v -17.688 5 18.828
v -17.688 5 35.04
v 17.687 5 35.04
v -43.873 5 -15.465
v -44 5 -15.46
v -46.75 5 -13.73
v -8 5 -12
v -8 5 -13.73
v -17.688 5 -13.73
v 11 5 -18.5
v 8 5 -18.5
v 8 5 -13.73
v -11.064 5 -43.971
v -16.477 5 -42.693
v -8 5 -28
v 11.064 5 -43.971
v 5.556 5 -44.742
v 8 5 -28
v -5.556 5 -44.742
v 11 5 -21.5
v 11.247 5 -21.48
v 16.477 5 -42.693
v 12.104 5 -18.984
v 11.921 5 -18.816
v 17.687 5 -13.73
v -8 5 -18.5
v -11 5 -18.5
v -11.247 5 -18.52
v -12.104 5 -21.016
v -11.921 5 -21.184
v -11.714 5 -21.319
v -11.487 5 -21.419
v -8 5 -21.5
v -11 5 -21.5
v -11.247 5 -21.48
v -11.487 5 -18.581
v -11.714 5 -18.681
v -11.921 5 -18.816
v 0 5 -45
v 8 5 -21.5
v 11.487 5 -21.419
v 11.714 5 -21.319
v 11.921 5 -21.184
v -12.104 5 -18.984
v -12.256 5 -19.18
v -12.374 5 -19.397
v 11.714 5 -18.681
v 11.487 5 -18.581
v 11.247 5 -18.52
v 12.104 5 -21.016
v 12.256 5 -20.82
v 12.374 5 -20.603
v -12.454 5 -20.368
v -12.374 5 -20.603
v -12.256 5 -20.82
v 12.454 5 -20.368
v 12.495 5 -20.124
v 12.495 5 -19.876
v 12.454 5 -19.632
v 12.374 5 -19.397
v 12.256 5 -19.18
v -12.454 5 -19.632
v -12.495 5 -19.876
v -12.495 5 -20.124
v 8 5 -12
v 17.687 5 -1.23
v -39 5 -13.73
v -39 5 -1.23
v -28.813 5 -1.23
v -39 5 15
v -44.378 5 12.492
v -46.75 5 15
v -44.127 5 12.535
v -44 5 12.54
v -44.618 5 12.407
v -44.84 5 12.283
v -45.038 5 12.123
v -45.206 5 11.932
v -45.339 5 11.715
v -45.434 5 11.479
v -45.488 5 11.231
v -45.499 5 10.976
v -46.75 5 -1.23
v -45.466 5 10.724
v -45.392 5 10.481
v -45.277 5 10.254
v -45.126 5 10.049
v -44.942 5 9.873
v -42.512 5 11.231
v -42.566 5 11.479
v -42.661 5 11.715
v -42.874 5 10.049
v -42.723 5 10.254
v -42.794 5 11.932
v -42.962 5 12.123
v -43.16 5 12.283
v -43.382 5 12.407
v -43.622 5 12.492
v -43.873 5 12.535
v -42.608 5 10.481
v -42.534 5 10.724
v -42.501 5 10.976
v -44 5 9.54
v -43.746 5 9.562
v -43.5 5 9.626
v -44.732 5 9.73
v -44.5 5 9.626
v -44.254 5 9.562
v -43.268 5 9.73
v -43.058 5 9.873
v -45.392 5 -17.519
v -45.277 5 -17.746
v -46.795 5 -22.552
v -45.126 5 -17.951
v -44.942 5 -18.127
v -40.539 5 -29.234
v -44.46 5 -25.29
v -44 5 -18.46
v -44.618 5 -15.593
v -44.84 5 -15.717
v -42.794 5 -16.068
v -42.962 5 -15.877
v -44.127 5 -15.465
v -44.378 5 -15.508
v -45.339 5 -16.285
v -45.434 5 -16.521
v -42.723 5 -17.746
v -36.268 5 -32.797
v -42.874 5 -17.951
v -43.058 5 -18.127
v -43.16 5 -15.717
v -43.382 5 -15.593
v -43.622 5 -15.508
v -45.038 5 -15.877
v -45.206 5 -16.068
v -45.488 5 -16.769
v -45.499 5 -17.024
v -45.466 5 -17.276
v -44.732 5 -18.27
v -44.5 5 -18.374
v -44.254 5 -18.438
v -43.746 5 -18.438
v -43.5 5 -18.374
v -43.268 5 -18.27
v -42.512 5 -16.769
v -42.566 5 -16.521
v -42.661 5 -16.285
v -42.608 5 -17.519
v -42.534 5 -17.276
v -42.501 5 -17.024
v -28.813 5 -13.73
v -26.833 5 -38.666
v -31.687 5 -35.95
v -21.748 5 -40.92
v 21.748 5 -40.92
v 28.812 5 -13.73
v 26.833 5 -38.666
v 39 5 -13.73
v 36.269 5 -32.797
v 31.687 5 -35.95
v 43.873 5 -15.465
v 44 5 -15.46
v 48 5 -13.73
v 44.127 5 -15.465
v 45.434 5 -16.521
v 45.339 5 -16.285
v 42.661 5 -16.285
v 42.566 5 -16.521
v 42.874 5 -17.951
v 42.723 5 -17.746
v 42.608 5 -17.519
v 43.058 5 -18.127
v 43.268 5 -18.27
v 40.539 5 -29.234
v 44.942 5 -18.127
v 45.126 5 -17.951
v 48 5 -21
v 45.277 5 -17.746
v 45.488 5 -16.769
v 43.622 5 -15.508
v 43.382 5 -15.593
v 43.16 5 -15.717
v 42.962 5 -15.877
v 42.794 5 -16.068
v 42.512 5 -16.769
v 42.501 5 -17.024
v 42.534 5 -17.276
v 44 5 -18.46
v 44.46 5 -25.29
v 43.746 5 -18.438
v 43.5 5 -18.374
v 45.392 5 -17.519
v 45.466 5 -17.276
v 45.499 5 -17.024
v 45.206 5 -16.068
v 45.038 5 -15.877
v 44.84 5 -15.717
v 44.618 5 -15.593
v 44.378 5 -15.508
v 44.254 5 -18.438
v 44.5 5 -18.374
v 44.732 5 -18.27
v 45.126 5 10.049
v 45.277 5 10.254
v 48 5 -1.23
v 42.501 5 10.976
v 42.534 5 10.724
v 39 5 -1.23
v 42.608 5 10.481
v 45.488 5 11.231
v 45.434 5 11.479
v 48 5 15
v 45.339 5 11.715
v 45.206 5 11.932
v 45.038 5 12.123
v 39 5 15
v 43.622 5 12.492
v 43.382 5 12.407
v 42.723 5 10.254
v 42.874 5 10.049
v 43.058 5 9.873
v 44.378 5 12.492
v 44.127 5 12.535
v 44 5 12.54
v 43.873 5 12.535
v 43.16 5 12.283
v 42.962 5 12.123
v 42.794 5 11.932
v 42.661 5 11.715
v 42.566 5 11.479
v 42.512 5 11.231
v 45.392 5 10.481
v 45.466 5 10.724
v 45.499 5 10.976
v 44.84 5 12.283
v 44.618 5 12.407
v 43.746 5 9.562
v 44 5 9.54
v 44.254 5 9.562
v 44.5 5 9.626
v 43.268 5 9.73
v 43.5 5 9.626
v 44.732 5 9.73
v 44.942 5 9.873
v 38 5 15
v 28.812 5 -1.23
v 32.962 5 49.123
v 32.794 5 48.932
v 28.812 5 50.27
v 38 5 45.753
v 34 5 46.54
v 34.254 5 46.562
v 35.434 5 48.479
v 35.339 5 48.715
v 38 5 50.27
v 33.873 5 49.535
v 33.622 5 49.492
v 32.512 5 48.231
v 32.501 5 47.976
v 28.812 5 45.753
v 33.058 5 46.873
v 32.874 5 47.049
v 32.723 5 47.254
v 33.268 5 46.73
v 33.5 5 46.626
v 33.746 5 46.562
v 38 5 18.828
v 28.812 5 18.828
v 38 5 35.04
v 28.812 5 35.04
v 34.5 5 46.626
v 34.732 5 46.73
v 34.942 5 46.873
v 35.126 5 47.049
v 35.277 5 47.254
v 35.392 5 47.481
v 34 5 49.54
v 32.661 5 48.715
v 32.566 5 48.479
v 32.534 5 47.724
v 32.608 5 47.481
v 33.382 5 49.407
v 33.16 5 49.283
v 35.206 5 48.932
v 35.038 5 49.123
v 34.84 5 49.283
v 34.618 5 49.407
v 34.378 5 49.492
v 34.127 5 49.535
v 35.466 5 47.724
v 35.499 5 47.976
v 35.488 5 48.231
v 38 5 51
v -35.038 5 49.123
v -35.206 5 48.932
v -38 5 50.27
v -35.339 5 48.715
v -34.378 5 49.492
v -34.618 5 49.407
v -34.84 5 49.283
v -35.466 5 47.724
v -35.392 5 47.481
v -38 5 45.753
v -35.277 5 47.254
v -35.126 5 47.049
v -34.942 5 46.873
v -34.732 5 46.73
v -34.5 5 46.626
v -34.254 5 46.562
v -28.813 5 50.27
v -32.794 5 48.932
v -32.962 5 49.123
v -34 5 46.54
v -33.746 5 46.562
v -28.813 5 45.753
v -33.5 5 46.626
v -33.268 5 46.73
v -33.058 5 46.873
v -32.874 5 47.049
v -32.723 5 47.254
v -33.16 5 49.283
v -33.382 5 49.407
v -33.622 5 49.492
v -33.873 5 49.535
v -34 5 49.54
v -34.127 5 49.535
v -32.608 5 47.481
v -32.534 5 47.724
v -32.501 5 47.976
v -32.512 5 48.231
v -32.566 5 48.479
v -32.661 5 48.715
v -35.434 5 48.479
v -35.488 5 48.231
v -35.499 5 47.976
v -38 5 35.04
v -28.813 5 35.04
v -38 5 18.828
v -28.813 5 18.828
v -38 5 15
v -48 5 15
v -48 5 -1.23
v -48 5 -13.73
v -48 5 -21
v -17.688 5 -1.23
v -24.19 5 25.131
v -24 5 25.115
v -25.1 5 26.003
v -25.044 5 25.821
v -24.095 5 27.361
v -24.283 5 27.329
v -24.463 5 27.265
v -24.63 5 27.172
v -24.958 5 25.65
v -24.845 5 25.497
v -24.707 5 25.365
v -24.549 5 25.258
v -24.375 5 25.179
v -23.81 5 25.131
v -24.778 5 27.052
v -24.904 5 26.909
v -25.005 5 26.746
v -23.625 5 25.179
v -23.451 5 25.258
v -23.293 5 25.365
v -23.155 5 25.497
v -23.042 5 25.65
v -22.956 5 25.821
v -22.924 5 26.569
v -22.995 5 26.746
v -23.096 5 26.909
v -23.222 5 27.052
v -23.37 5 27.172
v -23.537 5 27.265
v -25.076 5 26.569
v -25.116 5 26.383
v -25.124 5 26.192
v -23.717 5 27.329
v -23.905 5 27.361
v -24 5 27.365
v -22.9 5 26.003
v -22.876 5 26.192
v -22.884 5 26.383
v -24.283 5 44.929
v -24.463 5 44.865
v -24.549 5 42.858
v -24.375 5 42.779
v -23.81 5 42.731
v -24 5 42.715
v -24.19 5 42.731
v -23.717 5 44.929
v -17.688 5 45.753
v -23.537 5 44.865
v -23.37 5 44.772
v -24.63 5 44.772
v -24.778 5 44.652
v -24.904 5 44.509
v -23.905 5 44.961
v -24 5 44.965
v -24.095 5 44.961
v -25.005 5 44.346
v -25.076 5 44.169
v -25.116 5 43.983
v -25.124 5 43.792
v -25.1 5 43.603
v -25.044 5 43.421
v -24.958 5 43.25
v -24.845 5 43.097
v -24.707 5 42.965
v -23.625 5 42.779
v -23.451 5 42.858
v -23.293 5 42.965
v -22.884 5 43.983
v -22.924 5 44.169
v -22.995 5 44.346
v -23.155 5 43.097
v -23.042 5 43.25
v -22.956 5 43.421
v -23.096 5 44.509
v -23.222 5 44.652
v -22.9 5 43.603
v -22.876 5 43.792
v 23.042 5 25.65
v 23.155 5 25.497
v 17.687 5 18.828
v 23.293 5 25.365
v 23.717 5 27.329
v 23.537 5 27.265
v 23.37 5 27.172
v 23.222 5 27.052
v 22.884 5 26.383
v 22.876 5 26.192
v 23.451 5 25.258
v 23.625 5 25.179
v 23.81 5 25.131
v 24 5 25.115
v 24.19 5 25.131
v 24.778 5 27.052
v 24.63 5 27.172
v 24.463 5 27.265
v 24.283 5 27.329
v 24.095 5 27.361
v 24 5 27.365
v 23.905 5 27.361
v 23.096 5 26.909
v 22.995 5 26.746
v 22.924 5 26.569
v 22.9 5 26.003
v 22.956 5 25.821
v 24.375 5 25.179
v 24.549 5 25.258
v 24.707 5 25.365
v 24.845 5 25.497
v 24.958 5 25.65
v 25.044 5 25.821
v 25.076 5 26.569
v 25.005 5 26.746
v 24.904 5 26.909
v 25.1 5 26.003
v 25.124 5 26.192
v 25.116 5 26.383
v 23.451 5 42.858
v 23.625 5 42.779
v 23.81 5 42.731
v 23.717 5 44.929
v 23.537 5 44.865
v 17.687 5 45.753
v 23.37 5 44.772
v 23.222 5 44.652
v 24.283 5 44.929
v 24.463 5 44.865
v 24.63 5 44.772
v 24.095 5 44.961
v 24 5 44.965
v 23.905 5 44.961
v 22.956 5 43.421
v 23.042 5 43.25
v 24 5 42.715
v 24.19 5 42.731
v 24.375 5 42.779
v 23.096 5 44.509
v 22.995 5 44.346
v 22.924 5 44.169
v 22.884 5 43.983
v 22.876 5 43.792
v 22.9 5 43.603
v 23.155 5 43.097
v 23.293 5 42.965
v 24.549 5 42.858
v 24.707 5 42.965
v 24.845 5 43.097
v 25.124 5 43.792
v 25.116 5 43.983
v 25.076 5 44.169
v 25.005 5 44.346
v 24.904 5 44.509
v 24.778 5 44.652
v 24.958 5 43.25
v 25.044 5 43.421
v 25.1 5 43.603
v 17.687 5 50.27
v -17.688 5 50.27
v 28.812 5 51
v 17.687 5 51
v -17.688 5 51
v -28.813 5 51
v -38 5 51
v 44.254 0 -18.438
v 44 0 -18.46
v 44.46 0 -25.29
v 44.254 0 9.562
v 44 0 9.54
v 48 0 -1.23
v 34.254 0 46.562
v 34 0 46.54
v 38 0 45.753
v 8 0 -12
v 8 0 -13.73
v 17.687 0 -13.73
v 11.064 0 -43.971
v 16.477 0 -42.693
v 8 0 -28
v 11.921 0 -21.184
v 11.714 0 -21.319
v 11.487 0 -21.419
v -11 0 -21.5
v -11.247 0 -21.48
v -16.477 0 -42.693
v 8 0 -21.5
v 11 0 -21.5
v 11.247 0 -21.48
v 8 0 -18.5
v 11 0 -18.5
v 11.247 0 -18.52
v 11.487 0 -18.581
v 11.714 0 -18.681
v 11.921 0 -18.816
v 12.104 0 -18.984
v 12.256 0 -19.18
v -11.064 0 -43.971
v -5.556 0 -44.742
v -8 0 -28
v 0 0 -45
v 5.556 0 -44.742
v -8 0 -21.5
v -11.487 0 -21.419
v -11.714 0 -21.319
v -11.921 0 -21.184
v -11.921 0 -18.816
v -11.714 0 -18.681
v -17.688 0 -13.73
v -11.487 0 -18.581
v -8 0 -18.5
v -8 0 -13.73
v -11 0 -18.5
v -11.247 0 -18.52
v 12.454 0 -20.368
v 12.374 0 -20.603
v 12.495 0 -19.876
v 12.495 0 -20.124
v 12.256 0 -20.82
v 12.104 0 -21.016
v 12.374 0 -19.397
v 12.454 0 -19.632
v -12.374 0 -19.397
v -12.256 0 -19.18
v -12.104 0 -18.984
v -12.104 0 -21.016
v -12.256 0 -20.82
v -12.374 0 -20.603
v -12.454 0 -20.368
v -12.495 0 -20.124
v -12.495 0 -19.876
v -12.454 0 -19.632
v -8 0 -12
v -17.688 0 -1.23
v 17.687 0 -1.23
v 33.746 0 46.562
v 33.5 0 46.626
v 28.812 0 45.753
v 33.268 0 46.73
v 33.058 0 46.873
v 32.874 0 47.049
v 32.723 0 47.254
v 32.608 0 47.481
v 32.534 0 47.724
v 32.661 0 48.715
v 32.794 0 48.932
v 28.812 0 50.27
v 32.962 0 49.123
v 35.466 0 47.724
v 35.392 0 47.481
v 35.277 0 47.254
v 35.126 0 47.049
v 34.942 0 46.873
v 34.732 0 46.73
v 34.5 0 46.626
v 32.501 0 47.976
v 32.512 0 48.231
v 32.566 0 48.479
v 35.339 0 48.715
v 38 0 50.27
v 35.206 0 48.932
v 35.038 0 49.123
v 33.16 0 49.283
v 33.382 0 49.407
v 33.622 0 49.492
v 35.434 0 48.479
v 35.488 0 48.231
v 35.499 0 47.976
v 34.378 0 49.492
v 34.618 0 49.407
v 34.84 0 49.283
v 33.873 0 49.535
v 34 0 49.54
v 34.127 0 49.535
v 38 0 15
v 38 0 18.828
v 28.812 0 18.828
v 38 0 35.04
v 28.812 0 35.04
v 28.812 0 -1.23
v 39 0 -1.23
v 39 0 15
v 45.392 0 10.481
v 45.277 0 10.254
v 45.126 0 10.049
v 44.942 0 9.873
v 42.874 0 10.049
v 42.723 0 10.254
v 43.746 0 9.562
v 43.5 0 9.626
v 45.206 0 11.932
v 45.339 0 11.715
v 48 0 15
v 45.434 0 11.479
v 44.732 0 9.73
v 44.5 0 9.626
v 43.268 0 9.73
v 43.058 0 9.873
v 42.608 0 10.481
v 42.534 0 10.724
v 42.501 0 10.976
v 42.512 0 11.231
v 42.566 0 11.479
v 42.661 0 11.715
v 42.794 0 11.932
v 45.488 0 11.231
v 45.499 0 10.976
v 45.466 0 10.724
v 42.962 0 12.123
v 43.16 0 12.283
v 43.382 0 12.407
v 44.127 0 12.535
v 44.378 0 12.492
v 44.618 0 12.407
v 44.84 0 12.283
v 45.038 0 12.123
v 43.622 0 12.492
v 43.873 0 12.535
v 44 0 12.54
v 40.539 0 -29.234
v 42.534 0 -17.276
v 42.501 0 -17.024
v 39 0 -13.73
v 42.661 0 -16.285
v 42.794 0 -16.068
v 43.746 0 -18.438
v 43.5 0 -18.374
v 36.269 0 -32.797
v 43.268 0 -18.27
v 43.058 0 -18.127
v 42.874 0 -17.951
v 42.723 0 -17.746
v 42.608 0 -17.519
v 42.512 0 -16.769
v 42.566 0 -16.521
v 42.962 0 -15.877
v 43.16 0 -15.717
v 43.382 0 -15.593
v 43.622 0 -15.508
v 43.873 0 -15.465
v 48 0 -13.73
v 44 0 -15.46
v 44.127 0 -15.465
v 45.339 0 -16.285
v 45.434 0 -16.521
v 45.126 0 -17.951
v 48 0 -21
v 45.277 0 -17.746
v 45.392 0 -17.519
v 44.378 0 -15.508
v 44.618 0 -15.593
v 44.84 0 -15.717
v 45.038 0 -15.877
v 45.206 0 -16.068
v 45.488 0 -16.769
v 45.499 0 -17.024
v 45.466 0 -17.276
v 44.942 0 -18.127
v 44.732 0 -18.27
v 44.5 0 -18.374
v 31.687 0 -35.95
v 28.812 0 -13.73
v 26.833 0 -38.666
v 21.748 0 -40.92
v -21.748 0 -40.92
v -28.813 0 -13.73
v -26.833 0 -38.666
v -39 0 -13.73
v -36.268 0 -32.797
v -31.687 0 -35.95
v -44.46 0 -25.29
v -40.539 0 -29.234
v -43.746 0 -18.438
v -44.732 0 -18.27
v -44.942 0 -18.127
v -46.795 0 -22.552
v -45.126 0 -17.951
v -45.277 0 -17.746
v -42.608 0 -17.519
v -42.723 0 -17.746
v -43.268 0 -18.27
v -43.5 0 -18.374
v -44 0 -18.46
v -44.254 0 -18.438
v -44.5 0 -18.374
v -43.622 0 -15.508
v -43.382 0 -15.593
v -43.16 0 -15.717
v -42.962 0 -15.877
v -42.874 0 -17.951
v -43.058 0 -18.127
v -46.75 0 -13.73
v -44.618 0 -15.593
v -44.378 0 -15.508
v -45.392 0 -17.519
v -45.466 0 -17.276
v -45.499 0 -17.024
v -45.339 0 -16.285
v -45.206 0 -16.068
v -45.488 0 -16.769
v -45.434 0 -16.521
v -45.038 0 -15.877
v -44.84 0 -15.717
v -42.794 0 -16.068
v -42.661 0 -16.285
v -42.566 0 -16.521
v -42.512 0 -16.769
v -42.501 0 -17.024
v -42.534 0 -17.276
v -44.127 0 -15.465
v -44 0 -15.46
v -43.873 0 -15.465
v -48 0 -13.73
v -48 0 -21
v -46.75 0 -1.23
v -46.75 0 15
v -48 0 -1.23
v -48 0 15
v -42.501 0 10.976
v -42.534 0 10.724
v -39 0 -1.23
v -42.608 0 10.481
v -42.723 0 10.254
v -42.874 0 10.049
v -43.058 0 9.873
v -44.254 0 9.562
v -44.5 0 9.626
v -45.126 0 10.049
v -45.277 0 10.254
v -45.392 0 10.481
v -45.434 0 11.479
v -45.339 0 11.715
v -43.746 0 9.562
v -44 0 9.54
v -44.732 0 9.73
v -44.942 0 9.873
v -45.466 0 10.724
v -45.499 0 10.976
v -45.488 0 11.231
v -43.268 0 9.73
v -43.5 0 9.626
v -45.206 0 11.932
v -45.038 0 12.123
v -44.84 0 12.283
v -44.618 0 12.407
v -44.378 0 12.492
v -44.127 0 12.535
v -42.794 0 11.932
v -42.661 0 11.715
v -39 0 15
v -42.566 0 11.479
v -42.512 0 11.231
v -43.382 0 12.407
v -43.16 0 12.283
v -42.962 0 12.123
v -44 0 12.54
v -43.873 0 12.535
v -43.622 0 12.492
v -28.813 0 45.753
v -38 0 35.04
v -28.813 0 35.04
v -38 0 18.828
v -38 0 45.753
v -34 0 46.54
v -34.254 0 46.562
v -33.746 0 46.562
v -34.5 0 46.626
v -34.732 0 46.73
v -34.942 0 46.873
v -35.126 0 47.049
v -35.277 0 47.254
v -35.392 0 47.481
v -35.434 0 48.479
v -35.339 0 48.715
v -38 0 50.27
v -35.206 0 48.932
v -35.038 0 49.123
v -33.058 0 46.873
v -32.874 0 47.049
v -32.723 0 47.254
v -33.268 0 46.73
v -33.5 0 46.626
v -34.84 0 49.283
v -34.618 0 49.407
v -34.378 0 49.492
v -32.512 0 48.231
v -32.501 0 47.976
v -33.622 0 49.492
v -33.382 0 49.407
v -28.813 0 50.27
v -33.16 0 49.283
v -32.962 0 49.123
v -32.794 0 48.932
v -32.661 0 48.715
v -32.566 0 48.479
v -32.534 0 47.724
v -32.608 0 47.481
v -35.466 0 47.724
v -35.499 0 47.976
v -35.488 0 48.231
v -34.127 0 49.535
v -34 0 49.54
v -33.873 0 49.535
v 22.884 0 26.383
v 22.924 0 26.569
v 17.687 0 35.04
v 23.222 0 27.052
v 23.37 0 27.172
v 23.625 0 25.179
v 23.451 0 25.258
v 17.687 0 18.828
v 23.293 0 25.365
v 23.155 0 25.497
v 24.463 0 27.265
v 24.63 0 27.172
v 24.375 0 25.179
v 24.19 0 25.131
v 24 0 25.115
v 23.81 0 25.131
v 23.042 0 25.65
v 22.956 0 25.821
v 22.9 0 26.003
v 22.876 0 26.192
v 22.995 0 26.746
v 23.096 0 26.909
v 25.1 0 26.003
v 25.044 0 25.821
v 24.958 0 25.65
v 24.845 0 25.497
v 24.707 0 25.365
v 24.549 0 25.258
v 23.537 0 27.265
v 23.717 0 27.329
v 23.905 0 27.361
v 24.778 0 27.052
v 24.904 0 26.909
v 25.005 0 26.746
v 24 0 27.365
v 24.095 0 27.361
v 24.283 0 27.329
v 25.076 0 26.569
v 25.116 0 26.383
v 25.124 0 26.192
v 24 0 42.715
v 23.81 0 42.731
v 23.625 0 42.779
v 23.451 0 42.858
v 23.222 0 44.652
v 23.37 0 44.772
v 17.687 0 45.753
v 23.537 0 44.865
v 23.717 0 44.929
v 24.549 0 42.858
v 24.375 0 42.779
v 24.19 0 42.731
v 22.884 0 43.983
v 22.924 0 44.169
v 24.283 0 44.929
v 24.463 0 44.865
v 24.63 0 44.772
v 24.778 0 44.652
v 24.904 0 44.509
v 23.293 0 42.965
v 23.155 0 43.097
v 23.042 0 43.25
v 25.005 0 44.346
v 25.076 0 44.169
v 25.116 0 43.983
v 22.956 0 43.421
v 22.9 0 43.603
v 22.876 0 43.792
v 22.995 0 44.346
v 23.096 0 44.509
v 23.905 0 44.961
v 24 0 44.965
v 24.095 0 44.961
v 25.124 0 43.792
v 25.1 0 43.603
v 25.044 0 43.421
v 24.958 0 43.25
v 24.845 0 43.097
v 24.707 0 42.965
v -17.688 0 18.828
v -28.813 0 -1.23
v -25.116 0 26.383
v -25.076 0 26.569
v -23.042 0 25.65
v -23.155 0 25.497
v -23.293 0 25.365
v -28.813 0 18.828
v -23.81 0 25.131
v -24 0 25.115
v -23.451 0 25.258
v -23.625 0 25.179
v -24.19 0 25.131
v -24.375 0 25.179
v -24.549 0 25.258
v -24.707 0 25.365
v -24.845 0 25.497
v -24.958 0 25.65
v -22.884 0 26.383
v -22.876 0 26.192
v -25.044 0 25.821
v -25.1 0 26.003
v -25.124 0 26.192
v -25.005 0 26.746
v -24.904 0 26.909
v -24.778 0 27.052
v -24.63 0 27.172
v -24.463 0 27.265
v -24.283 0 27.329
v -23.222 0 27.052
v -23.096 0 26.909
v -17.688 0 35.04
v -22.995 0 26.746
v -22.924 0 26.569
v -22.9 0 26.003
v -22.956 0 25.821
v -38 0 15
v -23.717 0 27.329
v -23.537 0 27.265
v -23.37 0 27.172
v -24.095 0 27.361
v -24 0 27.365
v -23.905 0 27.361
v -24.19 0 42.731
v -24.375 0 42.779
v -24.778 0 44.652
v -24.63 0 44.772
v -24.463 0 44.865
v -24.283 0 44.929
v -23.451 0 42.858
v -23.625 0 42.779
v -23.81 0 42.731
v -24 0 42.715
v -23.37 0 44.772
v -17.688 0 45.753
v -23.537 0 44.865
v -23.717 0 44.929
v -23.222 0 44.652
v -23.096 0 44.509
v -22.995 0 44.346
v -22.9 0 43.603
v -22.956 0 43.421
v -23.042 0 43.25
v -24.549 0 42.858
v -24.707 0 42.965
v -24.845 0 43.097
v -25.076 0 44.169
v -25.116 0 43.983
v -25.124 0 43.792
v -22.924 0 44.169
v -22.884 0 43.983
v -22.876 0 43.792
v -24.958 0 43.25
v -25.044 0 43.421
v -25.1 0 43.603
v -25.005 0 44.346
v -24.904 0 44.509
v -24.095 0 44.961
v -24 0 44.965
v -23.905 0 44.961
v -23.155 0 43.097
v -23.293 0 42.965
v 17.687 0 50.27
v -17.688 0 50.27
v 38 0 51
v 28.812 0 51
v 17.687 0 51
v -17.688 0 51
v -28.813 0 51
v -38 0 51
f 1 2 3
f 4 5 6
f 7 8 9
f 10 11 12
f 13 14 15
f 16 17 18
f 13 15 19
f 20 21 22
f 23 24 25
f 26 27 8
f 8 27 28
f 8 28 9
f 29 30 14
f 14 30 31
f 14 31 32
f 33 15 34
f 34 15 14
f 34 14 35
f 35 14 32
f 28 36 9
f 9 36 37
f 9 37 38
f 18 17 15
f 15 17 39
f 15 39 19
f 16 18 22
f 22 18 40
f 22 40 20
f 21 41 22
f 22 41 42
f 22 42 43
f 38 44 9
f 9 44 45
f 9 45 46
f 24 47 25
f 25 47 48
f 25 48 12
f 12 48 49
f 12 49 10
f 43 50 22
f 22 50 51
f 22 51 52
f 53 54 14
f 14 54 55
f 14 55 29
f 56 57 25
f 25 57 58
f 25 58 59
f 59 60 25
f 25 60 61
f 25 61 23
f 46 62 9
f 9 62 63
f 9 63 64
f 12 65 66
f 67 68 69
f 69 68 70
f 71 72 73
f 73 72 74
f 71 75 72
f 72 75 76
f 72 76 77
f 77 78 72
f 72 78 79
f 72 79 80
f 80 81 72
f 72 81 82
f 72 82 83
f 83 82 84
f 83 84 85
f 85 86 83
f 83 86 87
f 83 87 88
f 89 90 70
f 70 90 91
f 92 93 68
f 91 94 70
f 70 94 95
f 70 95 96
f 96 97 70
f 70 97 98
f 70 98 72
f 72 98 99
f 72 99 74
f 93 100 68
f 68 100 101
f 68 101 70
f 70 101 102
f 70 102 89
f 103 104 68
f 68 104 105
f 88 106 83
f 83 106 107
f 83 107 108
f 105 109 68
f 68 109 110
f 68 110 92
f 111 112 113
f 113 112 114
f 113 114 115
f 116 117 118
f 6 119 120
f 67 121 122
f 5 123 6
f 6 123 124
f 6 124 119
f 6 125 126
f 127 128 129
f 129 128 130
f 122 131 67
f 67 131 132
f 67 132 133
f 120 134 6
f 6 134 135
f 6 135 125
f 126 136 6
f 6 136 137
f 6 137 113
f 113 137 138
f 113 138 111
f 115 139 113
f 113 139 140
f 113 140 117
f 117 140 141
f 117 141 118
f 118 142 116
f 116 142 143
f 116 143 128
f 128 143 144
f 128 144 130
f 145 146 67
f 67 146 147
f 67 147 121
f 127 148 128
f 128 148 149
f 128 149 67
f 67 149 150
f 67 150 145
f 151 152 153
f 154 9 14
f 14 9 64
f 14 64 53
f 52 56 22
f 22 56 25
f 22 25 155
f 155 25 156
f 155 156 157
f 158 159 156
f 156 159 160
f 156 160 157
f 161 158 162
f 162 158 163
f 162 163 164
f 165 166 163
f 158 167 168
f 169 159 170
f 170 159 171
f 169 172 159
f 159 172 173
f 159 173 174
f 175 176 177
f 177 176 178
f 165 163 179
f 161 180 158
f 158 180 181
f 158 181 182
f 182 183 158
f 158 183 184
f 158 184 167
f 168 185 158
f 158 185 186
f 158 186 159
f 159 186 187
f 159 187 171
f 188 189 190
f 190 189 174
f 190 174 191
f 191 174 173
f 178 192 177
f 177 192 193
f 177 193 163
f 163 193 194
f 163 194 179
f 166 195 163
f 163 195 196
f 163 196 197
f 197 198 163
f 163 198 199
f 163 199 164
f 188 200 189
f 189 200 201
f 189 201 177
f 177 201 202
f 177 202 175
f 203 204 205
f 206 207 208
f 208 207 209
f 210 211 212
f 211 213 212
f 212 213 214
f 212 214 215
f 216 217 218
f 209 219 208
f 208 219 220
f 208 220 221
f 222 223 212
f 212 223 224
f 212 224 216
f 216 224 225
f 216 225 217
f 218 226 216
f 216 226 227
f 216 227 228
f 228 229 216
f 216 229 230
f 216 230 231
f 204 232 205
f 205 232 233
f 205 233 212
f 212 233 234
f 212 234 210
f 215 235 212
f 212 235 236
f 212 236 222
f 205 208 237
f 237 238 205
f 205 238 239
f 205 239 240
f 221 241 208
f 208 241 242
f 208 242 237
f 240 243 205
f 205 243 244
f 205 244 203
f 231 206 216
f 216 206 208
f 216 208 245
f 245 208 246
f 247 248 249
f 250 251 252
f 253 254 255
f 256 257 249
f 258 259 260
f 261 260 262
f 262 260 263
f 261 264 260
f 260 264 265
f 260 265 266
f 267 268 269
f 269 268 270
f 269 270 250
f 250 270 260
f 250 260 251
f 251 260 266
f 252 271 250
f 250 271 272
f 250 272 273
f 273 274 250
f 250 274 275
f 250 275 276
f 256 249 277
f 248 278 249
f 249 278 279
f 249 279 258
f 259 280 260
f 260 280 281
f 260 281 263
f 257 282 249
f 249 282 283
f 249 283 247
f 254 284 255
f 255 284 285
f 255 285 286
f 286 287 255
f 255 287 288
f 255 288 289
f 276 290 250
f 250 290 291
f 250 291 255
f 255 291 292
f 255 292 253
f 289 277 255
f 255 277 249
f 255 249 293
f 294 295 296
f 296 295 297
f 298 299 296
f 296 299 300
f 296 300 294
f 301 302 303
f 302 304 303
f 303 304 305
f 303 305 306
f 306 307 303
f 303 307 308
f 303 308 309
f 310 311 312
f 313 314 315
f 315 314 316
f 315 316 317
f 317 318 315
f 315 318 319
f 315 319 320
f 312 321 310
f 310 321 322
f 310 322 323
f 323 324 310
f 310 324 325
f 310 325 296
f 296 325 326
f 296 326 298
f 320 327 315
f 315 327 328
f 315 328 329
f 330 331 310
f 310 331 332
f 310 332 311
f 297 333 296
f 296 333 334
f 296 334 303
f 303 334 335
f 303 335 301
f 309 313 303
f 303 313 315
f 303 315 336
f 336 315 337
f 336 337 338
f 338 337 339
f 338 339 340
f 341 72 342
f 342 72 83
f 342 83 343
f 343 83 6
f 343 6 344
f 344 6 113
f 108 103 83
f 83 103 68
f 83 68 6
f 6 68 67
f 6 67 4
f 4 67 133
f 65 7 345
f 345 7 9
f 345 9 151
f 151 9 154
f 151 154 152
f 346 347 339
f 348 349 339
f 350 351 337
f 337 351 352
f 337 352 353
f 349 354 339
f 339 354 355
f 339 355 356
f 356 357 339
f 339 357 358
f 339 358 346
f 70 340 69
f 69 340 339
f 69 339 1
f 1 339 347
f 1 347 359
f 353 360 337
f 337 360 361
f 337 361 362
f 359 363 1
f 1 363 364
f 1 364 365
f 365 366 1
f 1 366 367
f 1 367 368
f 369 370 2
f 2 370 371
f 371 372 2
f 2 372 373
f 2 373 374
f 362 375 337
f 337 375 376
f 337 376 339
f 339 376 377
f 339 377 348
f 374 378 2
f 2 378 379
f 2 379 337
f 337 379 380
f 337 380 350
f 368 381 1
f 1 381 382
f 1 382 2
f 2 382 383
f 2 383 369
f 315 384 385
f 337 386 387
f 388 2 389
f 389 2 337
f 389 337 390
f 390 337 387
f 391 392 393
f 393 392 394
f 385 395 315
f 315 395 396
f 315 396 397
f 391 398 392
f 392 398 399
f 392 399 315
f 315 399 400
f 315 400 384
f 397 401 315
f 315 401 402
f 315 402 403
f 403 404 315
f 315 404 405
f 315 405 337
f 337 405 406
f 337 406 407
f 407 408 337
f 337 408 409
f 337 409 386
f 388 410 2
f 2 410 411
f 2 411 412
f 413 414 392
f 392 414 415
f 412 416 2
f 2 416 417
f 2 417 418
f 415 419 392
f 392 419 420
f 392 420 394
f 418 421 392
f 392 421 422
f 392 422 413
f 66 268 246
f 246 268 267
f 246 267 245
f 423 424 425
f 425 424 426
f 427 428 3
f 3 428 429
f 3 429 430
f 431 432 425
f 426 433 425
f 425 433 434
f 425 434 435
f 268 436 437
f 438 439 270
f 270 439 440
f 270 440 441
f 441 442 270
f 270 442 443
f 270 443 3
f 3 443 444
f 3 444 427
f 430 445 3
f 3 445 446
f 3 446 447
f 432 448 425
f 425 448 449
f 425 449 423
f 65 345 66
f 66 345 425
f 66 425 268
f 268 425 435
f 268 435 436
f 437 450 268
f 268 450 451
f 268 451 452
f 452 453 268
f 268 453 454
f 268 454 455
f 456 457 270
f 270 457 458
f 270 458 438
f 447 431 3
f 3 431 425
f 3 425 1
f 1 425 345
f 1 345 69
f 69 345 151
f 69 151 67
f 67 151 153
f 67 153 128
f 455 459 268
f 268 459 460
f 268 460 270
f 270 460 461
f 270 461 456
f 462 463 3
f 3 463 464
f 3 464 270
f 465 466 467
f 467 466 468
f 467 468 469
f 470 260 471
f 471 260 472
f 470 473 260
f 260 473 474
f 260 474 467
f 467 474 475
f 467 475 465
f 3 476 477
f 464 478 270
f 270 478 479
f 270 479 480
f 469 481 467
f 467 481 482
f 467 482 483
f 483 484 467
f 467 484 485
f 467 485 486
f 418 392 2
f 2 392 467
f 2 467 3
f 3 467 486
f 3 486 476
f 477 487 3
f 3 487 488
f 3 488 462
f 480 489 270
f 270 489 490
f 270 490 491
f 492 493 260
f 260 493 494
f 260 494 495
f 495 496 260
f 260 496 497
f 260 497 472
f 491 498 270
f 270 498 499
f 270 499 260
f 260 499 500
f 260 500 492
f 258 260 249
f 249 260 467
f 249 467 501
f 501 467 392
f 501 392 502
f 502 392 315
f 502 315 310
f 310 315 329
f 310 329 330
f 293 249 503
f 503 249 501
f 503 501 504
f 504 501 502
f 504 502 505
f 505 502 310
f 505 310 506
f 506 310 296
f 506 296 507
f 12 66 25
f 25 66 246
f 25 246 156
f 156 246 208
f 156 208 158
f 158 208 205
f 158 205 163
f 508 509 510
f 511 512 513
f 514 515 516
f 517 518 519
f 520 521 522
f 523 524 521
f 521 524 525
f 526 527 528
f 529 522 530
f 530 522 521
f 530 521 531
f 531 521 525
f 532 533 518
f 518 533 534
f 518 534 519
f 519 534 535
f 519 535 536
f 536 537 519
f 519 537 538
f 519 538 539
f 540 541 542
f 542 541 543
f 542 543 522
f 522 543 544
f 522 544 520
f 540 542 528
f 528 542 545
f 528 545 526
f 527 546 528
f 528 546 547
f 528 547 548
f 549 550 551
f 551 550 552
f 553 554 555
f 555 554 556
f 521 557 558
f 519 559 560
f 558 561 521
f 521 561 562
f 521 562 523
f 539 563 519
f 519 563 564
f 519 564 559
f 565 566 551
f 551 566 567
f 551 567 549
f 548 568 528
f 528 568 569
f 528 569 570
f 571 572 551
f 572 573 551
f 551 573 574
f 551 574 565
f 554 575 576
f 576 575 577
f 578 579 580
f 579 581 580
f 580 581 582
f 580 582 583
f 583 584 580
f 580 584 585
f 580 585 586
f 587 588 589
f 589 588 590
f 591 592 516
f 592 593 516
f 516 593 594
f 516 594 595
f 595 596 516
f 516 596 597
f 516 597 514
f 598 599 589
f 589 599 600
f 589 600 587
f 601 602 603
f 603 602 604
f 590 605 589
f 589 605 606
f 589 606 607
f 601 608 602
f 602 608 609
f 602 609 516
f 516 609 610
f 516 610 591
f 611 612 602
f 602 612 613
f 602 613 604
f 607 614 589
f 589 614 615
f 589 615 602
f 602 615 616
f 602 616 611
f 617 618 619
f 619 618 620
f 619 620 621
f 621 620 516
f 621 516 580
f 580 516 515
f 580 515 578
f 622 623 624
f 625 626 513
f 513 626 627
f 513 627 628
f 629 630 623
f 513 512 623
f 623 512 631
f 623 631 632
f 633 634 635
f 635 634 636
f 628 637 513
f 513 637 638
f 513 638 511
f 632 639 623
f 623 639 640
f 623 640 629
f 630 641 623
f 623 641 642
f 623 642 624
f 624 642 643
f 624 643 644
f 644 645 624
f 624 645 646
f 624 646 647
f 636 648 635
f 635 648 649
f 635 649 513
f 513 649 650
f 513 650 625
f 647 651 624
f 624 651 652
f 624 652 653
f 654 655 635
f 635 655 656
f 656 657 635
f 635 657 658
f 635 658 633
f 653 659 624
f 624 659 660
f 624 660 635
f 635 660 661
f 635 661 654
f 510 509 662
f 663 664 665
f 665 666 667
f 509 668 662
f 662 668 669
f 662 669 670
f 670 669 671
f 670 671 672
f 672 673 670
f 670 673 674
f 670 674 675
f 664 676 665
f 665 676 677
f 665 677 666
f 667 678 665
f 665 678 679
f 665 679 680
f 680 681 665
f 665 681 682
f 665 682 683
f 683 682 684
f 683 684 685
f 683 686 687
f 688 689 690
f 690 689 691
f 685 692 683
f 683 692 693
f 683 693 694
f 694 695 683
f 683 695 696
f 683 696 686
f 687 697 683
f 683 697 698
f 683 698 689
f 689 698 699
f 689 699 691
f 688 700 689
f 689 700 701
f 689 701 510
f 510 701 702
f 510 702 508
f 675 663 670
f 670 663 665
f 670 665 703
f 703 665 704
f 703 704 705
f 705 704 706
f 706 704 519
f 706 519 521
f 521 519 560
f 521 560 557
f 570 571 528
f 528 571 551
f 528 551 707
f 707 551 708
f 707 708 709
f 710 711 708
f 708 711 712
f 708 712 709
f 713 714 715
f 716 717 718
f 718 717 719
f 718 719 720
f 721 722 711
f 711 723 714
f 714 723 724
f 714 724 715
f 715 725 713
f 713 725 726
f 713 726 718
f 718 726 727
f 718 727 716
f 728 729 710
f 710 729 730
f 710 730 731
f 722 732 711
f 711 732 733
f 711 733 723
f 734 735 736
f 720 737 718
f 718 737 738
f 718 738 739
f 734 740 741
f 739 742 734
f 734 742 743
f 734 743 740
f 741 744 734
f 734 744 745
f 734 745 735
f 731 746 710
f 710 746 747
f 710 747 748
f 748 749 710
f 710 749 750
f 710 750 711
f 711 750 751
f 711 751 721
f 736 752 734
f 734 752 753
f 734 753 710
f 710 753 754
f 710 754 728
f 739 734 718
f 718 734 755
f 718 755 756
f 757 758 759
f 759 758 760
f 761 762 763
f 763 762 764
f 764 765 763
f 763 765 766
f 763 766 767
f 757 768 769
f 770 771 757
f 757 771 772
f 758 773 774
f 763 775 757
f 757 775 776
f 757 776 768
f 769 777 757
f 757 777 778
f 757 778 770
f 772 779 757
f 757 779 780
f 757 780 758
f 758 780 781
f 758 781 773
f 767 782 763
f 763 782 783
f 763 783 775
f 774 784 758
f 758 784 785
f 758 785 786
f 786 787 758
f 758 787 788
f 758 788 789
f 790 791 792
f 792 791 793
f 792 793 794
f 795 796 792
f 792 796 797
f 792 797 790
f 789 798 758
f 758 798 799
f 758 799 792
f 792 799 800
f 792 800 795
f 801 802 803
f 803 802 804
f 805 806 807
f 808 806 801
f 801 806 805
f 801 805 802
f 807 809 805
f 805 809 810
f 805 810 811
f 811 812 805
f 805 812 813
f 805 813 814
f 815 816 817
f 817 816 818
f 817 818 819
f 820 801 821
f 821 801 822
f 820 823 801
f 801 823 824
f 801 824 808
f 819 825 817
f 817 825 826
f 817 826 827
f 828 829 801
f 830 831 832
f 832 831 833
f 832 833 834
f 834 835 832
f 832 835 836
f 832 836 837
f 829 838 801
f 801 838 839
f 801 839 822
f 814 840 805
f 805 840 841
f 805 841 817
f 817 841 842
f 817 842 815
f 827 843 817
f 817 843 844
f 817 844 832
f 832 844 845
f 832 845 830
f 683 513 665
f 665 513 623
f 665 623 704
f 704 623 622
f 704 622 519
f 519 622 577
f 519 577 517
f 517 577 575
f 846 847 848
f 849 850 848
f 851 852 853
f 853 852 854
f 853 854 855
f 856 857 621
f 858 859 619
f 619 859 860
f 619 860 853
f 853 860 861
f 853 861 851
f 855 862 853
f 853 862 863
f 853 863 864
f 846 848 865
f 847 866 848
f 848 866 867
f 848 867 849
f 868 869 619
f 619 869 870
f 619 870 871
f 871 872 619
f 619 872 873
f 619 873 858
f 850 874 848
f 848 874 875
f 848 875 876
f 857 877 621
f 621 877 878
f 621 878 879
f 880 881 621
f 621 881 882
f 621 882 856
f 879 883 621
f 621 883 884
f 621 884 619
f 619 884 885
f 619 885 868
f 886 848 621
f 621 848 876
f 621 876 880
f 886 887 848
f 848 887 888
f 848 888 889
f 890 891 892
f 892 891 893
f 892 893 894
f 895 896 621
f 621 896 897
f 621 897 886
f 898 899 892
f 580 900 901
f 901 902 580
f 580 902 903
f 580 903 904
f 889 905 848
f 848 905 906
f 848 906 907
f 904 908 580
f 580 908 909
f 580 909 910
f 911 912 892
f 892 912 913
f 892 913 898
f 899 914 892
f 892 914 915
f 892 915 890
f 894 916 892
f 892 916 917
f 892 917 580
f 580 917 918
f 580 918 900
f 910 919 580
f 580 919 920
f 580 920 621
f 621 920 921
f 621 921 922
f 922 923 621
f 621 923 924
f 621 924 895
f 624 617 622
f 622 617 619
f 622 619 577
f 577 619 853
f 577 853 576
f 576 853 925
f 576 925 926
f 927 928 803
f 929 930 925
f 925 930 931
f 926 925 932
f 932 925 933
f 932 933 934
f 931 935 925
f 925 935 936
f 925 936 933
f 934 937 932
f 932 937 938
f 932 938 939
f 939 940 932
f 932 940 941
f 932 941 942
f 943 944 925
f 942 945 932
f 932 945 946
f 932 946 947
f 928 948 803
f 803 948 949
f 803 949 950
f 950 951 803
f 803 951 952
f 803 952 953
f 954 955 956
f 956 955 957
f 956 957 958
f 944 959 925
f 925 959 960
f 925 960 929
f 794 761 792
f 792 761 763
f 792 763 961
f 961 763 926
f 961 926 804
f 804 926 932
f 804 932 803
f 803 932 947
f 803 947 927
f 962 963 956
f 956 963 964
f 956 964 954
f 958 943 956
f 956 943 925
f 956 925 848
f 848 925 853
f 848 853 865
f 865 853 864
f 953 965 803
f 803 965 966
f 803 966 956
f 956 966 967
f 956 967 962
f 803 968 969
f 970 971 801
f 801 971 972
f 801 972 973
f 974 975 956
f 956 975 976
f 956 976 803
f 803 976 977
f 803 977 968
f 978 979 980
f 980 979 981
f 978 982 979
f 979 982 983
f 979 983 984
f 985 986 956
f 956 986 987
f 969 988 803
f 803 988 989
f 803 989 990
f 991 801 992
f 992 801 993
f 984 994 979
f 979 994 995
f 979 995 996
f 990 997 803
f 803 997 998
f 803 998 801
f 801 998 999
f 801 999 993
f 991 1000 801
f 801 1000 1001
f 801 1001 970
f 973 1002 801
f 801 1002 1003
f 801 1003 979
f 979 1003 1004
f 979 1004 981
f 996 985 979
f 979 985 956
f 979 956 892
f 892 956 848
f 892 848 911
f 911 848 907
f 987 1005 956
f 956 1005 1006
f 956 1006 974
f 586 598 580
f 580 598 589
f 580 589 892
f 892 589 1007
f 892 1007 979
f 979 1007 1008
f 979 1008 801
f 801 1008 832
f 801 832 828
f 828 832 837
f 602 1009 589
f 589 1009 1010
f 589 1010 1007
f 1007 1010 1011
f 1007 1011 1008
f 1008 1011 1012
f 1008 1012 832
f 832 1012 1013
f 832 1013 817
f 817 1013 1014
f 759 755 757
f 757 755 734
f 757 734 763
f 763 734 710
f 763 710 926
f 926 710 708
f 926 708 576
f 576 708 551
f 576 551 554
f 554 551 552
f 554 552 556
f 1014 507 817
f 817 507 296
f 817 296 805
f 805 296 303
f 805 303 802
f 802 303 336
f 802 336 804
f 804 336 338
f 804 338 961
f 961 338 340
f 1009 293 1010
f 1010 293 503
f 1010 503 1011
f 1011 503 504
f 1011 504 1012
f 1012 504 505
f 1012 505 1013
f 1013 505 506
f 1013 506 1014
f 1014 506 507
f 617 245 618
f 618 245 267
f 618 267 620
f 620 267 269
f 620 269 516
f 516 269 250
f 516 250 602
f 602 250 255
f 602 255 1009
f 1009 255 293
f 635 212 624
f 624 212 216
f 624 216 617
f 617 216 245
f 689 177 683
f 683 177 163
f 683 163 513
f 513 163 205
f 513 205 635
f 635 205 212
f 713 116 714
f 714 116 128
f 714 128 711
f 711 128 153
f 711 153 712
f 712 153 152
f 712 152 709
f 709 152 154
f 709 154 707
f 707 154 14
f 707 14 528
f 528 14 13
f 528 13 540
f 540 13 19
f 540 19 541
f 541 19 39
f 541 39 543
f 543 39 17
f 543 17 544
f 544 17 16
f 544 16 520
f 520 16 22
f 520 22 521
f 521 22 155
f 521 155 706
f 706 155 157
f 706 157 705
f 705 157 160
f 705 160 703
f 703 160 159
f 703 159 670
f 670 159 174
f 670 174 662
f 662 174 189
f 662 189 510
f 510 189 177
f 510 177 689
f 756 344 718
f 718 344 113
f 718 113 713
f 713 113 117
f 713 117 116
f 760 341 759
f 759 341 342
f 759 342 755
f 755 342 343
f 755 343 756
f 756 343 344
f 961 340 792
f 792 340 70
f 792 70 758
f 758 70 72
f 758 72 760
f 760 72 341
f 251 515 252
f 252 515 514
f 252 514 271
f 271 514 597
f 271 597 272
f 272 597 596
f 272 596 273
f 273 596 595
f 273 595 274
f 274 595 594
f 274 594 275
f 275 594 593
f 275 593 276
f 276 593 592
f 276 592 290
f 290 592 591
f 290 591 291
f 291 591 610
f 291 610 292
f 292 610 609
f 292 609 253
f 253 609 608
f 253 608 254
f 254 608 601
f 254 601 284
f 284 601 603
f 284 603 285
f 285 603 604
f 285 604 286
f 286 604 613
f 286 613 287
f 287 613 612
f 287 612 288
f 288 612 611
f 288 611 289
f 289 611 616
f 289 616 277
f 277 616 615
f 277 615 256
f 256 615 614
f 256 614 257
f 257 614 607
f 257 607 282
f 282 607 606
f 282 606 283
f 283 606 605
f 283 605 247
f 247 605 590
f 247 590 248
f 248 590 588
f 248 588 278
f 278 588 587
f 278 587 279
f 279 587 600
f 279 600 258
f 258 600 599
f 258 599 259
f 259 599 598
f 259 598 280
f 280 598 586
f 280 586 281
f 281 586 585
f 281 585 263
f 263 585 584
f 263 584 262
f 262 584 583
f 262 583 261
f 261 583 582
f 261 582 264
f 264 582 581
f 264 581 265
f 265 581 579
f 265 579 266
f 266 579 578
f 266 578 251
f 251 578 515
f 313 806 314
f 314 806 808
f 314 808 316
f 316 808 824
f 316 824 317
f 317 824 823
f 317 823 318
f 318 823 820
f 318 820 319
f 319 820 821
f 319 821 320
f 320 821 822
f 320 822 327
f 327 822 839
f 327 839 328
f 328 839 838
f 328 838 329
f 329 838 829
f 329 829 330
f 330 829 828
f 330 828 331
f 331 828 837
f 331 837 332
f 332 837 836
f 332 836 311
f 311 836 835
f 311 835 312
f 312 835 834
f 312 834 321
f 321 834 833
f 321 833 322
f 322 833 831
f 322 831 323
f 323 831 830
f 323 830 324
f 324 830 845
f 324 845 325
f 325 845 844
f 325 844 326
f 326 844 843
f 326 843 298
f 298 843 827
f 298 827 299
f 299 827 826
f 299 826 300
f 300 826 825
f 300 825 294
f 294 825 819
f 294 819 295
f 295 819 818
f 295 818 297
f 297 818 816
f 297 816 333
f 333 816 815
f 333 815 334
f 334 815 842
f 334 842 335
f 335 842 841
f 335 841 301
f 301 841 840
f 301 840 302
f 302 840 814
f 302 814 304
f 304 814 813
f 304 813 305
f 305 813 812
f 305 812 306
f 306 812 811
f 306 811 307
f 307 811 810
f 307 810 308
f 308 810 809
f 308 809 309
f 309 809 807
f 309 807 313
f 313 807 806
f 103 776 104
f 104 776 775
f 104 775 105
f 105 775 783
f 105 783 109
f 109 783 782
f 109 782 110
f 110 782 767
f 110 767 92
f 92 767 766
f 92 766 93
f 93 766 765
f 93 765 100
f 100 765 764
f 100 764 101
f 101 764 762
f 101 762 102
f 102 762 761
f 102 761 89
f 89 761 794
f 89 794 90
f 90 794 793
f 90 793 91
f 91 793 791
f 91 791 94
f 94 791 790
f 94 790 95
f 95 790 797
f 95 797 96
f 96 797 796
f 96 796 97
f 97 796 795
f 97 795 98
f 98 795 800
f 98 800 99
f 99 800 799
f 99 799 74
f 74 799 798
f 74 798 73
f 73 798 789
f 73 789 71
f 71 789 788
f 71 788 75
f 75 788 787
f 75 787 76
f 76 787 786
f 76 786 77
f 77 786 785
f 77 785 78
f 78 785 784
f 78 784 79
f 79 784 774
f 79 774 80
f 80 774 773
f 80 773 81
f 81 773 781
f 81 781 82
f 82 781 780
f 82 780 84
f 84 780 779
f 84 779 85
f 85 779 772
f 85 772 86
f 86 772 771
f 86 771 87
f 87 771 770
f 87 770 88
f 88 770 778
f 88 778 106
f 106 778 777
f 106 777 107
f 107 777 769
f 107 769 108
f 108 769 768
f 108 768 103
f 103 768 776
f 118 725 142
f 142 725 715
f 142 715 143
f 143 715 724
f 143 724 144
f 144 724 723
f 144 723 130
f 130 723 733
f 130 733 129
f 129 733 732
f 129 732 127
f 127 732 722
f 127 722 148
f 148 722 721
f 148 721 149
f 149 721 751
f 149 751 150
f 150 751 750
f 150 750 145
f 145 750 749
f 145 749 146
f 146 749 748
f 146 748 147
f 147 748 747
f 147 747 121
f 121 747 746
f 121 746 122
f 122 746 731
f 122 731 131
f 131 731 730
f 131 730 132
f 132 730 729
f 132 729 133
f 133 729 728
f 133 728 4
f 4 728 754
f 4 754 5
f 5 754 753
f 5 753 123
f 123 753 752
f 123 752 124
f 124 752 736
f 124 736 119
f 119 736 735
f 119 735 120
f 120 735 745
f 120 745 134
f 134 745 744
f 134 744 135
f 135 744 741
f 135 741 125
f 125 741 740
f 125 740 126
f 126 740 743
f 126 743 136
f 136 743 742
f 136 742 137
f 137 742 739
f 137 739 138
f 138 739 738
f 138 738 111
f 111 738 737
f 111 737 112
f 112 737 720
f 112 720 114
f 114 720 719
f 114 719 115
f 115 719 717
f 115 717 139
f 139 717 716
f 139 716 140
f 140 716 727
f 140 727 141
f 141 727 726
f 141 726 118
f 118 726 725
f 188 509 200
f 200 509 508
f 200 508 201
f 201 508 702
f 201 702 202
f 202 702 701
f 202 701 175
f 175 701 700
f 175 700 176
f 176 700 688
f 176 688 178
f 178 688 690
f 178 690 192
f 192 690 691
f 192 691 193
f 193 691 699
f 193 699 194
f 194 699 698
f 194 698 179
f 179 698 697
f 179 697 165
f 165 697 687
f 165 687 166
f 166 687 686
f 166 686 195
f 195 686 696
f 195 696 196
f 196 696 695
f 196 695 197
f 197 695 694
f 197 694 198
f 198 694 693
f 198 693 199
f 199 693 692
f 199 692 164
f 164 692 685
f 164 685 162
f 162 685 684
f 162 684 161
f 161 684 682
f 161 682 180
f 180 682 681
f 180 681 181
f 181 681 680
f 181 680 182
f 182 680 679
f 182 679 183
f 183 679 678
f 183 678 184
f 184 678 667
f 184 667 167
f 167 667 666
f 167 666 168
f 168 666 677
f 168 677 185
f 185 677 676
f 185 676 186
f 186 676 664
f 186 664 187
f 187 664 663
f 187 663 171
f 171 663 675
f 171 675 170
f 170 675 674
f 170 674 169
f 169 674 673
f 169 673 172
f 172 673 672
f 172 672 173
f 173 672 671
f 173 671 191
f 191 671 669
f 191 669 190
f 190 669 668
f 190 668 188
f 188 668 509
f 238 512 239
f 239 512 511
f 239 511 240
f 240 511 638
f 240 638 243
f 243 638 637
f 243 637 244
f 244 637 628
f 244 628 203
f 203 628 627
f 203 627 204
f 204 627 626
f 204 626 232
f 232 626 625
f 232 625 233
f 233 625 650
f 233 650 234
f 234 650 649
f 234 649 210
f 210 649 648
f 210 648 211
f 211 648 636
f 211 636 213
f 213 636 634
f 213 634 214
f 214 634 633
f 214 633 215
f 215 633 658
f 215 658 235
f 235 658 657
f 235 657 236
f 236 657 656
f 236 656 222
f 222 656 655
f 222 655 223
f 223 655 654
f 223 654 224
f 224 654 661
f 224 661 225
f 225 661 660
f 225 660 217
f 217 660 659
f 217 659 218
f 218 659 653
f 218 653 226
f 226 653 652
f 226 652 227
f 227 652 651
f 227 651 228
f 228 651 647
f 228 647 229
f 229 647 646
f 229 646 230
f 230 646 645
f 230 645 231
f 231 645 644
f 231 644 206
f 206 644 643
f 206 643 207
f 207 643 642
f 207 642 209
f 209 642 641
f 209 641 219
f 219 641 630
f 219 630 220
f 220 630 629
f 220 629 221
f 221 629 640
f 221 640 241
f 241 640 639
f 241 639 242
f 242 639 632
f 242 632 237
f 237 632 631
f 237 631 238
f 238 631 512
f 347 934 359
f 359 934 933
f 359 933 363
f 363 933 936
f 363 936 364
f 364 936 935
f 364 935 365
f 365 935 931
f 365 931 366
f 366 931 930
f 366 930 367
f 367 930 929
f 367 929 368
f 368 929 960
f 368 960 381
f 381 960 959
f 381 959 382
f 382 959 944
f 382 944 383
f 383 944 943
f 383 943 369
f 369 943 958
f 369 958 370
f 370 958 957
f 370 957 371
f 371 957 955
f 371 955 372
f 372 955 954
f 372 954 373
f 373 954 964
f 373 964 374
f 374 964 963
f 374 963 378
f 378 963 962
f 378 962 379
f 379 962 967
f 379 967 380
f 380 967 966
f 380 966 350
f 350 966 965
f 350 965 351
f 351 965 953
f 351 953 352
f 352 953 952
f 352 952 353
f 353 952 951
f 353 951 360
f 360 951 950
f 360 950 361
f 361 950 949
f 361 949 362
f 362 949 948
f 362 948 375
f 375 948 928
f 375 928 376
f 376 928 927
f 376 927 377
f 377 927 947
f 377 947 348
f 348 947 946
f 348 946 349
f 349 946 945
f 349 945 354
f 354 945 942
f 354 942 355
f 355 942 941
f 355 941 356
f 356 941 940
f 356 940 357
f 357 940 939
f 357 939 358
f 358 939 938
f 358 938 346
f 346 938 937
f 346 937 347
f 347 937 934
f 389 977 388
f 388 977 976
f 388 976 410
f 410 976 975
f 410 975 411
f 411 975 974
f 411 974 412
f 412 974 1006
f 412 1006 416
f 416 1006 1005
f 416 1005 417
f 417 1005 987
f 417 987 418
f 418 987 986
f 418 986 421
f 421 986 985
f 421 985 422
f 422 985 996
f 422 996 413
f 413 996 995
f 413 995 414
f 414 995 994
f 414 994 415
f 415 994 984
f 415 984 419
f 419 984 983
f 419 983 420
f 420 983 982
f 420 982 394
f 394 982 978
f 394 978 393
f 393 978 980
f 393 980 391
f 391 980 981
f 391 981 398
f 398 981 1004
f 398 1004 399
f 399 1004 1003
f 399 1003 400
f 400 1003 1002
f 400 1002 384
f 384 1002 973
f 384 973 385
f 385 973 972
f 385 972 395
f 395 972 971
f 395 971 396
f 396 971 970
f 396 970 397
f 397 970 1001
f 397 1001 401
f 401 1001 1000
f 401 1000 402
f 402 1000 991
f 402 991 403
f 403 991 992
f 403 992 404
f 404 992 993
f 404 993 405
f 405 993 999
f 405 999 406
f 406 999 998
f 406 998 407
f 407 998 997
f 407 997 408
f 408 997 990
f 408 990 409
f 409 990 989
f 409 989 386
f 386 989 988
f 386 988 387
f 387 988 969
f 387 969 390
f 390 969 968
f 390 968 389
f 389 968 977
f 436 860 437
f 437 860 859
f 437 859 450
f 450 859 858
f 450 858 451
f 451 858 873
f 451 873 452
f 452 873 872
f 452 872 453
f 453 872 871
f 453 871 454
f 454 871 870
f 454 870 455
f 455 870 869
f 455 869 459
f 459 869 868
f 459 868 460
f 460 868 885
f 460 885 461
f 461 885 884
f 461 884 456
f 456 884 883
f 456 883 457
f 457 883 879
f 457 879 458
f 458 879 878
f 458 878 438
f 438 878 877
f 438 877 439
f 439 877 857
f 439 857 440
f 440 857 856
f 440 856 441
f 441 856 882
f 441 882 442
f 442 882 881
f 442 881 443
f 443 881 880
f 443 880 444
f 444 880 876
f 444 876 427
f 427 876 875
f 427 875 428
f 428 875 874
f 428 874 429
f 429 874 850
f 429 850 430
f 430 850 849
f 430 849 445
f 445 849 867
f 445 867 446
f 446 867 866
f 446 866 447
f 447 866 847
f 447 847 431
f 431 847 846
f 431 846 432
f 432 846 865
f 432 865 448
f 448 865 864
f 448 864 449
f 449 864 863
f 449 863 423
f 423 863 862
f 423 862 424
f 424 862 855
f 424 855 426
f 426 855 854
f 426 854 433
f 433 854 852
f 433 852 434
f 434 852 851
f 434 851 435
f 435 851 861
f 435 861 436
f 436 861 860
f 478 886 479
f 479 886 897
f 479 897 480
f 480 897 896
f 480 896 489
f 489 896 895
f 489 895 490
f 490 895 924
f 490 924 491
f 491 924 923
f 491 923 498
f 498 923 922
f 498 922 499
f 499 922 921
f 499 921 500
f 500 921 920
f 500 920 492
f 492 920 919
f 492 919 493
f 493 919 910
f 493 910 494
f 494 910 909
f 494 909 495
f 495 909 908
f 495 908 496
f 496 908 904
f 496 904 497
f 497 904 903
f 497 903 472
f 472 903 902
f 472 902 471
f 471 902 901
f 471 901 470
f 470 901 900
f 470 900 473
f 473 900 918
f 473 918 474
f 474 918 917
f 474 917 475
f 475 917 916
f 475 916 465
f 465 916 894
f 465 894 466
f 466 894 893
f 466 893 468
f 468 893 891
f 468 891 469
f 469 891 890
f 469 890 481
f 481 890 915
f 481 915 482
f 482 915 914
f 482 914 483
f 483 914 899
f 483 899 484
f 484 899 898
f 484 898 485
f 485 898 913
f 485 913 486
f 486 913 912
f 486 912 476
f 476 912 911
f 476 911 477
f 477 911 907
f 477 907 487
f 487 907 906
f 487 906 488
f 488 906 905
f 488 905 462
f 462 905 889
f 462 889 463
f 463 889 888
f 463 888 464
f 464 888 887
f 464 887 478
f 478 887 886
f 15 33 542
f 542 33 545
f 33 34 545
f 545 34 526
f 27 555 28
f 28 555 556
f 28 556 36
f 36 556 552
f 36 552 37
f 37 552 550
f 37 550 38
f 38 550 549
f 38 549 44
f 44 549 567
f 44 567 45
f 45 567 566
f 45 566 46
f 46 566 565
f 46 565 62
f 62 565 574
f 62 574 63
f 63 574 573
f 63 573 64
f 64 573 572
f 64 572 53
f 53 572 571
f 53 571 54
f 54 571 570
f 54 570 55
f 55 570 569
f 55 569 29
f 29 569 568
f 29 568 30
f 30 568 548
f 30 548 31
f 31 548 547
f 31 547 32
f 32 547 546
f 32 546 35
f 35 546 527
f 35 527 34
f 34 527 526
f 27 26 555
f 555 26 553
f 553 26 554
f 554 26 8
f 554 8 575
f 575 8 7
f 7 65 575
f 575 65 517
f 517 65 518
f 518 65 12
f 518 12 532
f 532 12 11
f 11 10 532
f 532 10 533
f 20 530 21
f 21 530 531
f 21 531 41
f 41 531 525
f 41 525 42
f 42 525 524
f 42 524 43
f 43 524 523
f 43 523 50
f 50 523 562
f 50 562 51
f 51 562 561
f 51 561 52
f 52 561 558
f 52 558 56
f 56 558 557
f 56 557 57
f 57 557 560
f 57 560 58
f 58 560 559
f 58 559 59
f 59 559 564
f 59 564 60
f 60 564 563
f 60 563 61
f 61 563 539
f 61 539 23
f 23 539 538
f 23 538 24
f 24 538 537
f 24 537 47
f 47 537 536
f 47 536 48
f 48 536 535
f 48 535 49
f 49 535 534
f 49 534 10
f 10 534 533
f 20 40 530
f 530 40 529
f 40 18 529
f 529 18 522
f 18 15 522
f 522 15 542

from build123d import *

# Parameters (mm, degrees)
SKETCH1_R           = 1.5
SKETCH1_R_2         = 1.125
BOSS_EXTRUDE1_DEPTH = 5


with BuildPart() as part:
    # Sketch1 → Boss-Extrude1 (new body)
    with BuildSketch(Plane(origin=(0, 0, 0), x_dir=(1, 0, 0), z_dir=(0, 1, 0))):
        with BuildLine():
            Line((-38, -51), (38, -51))
            Line((38, -51), (38, -15))
            Line((38, -15), (48, -15))
            Line((48, -15), (48, 21))
            ThreePointArc((48, 21), (0, 45), (-48, 21))
            Line((-48, 21), (-48, -15))
            Line((-48, -15), (-38, -15))
            Line((-38, -15), (-38, -51))
        make_face()
        with Locations(Location((34, -48.04, 0), (0, 0, 270))):
            Circle(SKETCH1_R, mode=Mode.SUBTRACT)
        with Locations(Location((-34, -48.04, 0), (0, 0, 270))):
            Circle(SKETCH1_R, mode=Mode.SUBTRACT)
        with Locations(Location((-44, -11.04, 0), (0, 0, 270))):
            Circle(SKETCH1_R, mode=Mode.SUBTRACT)
        with Locations(Location((-44, 16.96, 0), (0, 0, 270))):
            Circle(SKETCH1_R, mode=Mode.SUBTRACT)
        with Locations(Location((44, 16.96, 0), (0, 0, 270))):
            Circle(SKETCH1_R, mode=Mode.SUBTRACT)
        with Locations(Location((44, -11.04, 0), (0, 0, 270))):
            Circle(SKETCH1_R, mode=Mode.SUBTRACT)
        with Locations(Location((-24, -26.24, 0), (0, 0, 270))):
            Circle(SKETCH1_R_2, mode=Mode.SUBTRACT)
        with Locations(Location((-24, -43.84, 0), (0, 0, 270))):
            Circle(SKETCH1_R_2, mode=Mode.SUBTRACT)
        with Locations(Location((24, -26.24, 0), (0, 0, 270))):
            Circle(SKETCH1_R_2, mode=Mode.SUBTRACT)
        with Locations(Location((24, -43.84, 0), (0, 0, 270))):
            Circle(SKETCH1_R_2, mode=Mode.SUBTRACT)
        with BuildLine():
            Line((-8, 28), (8, 28))
            Line((8, 28), (8, 21.5))
            Line((8, 21.5), (11, 21.5))
            ThreePointArc((11, 21.5), (12.5, 20), (11, 18.5))
            Line((11, 18.5), (8, 18.5))
            Line((8, 18.5), (8, 12))
            Line((8, 12), (-8, 12))
            Line((-8, 12), (-8, 18.5))
            Line((-8, 18.5), (-11, 18.5))
            ThreePointArc((-11, 18.5), (-12.5, 20), (-11, 21.5))
            Line((-11, 21.5), (-8, 21.5))
            Line((-8, 21.5), (-8, 28))
        make_face(mode=Mode.SUBTRACT)
    extrude(amount=BOSS_EXTRUDE1_DEPTH)


solid = part.part
